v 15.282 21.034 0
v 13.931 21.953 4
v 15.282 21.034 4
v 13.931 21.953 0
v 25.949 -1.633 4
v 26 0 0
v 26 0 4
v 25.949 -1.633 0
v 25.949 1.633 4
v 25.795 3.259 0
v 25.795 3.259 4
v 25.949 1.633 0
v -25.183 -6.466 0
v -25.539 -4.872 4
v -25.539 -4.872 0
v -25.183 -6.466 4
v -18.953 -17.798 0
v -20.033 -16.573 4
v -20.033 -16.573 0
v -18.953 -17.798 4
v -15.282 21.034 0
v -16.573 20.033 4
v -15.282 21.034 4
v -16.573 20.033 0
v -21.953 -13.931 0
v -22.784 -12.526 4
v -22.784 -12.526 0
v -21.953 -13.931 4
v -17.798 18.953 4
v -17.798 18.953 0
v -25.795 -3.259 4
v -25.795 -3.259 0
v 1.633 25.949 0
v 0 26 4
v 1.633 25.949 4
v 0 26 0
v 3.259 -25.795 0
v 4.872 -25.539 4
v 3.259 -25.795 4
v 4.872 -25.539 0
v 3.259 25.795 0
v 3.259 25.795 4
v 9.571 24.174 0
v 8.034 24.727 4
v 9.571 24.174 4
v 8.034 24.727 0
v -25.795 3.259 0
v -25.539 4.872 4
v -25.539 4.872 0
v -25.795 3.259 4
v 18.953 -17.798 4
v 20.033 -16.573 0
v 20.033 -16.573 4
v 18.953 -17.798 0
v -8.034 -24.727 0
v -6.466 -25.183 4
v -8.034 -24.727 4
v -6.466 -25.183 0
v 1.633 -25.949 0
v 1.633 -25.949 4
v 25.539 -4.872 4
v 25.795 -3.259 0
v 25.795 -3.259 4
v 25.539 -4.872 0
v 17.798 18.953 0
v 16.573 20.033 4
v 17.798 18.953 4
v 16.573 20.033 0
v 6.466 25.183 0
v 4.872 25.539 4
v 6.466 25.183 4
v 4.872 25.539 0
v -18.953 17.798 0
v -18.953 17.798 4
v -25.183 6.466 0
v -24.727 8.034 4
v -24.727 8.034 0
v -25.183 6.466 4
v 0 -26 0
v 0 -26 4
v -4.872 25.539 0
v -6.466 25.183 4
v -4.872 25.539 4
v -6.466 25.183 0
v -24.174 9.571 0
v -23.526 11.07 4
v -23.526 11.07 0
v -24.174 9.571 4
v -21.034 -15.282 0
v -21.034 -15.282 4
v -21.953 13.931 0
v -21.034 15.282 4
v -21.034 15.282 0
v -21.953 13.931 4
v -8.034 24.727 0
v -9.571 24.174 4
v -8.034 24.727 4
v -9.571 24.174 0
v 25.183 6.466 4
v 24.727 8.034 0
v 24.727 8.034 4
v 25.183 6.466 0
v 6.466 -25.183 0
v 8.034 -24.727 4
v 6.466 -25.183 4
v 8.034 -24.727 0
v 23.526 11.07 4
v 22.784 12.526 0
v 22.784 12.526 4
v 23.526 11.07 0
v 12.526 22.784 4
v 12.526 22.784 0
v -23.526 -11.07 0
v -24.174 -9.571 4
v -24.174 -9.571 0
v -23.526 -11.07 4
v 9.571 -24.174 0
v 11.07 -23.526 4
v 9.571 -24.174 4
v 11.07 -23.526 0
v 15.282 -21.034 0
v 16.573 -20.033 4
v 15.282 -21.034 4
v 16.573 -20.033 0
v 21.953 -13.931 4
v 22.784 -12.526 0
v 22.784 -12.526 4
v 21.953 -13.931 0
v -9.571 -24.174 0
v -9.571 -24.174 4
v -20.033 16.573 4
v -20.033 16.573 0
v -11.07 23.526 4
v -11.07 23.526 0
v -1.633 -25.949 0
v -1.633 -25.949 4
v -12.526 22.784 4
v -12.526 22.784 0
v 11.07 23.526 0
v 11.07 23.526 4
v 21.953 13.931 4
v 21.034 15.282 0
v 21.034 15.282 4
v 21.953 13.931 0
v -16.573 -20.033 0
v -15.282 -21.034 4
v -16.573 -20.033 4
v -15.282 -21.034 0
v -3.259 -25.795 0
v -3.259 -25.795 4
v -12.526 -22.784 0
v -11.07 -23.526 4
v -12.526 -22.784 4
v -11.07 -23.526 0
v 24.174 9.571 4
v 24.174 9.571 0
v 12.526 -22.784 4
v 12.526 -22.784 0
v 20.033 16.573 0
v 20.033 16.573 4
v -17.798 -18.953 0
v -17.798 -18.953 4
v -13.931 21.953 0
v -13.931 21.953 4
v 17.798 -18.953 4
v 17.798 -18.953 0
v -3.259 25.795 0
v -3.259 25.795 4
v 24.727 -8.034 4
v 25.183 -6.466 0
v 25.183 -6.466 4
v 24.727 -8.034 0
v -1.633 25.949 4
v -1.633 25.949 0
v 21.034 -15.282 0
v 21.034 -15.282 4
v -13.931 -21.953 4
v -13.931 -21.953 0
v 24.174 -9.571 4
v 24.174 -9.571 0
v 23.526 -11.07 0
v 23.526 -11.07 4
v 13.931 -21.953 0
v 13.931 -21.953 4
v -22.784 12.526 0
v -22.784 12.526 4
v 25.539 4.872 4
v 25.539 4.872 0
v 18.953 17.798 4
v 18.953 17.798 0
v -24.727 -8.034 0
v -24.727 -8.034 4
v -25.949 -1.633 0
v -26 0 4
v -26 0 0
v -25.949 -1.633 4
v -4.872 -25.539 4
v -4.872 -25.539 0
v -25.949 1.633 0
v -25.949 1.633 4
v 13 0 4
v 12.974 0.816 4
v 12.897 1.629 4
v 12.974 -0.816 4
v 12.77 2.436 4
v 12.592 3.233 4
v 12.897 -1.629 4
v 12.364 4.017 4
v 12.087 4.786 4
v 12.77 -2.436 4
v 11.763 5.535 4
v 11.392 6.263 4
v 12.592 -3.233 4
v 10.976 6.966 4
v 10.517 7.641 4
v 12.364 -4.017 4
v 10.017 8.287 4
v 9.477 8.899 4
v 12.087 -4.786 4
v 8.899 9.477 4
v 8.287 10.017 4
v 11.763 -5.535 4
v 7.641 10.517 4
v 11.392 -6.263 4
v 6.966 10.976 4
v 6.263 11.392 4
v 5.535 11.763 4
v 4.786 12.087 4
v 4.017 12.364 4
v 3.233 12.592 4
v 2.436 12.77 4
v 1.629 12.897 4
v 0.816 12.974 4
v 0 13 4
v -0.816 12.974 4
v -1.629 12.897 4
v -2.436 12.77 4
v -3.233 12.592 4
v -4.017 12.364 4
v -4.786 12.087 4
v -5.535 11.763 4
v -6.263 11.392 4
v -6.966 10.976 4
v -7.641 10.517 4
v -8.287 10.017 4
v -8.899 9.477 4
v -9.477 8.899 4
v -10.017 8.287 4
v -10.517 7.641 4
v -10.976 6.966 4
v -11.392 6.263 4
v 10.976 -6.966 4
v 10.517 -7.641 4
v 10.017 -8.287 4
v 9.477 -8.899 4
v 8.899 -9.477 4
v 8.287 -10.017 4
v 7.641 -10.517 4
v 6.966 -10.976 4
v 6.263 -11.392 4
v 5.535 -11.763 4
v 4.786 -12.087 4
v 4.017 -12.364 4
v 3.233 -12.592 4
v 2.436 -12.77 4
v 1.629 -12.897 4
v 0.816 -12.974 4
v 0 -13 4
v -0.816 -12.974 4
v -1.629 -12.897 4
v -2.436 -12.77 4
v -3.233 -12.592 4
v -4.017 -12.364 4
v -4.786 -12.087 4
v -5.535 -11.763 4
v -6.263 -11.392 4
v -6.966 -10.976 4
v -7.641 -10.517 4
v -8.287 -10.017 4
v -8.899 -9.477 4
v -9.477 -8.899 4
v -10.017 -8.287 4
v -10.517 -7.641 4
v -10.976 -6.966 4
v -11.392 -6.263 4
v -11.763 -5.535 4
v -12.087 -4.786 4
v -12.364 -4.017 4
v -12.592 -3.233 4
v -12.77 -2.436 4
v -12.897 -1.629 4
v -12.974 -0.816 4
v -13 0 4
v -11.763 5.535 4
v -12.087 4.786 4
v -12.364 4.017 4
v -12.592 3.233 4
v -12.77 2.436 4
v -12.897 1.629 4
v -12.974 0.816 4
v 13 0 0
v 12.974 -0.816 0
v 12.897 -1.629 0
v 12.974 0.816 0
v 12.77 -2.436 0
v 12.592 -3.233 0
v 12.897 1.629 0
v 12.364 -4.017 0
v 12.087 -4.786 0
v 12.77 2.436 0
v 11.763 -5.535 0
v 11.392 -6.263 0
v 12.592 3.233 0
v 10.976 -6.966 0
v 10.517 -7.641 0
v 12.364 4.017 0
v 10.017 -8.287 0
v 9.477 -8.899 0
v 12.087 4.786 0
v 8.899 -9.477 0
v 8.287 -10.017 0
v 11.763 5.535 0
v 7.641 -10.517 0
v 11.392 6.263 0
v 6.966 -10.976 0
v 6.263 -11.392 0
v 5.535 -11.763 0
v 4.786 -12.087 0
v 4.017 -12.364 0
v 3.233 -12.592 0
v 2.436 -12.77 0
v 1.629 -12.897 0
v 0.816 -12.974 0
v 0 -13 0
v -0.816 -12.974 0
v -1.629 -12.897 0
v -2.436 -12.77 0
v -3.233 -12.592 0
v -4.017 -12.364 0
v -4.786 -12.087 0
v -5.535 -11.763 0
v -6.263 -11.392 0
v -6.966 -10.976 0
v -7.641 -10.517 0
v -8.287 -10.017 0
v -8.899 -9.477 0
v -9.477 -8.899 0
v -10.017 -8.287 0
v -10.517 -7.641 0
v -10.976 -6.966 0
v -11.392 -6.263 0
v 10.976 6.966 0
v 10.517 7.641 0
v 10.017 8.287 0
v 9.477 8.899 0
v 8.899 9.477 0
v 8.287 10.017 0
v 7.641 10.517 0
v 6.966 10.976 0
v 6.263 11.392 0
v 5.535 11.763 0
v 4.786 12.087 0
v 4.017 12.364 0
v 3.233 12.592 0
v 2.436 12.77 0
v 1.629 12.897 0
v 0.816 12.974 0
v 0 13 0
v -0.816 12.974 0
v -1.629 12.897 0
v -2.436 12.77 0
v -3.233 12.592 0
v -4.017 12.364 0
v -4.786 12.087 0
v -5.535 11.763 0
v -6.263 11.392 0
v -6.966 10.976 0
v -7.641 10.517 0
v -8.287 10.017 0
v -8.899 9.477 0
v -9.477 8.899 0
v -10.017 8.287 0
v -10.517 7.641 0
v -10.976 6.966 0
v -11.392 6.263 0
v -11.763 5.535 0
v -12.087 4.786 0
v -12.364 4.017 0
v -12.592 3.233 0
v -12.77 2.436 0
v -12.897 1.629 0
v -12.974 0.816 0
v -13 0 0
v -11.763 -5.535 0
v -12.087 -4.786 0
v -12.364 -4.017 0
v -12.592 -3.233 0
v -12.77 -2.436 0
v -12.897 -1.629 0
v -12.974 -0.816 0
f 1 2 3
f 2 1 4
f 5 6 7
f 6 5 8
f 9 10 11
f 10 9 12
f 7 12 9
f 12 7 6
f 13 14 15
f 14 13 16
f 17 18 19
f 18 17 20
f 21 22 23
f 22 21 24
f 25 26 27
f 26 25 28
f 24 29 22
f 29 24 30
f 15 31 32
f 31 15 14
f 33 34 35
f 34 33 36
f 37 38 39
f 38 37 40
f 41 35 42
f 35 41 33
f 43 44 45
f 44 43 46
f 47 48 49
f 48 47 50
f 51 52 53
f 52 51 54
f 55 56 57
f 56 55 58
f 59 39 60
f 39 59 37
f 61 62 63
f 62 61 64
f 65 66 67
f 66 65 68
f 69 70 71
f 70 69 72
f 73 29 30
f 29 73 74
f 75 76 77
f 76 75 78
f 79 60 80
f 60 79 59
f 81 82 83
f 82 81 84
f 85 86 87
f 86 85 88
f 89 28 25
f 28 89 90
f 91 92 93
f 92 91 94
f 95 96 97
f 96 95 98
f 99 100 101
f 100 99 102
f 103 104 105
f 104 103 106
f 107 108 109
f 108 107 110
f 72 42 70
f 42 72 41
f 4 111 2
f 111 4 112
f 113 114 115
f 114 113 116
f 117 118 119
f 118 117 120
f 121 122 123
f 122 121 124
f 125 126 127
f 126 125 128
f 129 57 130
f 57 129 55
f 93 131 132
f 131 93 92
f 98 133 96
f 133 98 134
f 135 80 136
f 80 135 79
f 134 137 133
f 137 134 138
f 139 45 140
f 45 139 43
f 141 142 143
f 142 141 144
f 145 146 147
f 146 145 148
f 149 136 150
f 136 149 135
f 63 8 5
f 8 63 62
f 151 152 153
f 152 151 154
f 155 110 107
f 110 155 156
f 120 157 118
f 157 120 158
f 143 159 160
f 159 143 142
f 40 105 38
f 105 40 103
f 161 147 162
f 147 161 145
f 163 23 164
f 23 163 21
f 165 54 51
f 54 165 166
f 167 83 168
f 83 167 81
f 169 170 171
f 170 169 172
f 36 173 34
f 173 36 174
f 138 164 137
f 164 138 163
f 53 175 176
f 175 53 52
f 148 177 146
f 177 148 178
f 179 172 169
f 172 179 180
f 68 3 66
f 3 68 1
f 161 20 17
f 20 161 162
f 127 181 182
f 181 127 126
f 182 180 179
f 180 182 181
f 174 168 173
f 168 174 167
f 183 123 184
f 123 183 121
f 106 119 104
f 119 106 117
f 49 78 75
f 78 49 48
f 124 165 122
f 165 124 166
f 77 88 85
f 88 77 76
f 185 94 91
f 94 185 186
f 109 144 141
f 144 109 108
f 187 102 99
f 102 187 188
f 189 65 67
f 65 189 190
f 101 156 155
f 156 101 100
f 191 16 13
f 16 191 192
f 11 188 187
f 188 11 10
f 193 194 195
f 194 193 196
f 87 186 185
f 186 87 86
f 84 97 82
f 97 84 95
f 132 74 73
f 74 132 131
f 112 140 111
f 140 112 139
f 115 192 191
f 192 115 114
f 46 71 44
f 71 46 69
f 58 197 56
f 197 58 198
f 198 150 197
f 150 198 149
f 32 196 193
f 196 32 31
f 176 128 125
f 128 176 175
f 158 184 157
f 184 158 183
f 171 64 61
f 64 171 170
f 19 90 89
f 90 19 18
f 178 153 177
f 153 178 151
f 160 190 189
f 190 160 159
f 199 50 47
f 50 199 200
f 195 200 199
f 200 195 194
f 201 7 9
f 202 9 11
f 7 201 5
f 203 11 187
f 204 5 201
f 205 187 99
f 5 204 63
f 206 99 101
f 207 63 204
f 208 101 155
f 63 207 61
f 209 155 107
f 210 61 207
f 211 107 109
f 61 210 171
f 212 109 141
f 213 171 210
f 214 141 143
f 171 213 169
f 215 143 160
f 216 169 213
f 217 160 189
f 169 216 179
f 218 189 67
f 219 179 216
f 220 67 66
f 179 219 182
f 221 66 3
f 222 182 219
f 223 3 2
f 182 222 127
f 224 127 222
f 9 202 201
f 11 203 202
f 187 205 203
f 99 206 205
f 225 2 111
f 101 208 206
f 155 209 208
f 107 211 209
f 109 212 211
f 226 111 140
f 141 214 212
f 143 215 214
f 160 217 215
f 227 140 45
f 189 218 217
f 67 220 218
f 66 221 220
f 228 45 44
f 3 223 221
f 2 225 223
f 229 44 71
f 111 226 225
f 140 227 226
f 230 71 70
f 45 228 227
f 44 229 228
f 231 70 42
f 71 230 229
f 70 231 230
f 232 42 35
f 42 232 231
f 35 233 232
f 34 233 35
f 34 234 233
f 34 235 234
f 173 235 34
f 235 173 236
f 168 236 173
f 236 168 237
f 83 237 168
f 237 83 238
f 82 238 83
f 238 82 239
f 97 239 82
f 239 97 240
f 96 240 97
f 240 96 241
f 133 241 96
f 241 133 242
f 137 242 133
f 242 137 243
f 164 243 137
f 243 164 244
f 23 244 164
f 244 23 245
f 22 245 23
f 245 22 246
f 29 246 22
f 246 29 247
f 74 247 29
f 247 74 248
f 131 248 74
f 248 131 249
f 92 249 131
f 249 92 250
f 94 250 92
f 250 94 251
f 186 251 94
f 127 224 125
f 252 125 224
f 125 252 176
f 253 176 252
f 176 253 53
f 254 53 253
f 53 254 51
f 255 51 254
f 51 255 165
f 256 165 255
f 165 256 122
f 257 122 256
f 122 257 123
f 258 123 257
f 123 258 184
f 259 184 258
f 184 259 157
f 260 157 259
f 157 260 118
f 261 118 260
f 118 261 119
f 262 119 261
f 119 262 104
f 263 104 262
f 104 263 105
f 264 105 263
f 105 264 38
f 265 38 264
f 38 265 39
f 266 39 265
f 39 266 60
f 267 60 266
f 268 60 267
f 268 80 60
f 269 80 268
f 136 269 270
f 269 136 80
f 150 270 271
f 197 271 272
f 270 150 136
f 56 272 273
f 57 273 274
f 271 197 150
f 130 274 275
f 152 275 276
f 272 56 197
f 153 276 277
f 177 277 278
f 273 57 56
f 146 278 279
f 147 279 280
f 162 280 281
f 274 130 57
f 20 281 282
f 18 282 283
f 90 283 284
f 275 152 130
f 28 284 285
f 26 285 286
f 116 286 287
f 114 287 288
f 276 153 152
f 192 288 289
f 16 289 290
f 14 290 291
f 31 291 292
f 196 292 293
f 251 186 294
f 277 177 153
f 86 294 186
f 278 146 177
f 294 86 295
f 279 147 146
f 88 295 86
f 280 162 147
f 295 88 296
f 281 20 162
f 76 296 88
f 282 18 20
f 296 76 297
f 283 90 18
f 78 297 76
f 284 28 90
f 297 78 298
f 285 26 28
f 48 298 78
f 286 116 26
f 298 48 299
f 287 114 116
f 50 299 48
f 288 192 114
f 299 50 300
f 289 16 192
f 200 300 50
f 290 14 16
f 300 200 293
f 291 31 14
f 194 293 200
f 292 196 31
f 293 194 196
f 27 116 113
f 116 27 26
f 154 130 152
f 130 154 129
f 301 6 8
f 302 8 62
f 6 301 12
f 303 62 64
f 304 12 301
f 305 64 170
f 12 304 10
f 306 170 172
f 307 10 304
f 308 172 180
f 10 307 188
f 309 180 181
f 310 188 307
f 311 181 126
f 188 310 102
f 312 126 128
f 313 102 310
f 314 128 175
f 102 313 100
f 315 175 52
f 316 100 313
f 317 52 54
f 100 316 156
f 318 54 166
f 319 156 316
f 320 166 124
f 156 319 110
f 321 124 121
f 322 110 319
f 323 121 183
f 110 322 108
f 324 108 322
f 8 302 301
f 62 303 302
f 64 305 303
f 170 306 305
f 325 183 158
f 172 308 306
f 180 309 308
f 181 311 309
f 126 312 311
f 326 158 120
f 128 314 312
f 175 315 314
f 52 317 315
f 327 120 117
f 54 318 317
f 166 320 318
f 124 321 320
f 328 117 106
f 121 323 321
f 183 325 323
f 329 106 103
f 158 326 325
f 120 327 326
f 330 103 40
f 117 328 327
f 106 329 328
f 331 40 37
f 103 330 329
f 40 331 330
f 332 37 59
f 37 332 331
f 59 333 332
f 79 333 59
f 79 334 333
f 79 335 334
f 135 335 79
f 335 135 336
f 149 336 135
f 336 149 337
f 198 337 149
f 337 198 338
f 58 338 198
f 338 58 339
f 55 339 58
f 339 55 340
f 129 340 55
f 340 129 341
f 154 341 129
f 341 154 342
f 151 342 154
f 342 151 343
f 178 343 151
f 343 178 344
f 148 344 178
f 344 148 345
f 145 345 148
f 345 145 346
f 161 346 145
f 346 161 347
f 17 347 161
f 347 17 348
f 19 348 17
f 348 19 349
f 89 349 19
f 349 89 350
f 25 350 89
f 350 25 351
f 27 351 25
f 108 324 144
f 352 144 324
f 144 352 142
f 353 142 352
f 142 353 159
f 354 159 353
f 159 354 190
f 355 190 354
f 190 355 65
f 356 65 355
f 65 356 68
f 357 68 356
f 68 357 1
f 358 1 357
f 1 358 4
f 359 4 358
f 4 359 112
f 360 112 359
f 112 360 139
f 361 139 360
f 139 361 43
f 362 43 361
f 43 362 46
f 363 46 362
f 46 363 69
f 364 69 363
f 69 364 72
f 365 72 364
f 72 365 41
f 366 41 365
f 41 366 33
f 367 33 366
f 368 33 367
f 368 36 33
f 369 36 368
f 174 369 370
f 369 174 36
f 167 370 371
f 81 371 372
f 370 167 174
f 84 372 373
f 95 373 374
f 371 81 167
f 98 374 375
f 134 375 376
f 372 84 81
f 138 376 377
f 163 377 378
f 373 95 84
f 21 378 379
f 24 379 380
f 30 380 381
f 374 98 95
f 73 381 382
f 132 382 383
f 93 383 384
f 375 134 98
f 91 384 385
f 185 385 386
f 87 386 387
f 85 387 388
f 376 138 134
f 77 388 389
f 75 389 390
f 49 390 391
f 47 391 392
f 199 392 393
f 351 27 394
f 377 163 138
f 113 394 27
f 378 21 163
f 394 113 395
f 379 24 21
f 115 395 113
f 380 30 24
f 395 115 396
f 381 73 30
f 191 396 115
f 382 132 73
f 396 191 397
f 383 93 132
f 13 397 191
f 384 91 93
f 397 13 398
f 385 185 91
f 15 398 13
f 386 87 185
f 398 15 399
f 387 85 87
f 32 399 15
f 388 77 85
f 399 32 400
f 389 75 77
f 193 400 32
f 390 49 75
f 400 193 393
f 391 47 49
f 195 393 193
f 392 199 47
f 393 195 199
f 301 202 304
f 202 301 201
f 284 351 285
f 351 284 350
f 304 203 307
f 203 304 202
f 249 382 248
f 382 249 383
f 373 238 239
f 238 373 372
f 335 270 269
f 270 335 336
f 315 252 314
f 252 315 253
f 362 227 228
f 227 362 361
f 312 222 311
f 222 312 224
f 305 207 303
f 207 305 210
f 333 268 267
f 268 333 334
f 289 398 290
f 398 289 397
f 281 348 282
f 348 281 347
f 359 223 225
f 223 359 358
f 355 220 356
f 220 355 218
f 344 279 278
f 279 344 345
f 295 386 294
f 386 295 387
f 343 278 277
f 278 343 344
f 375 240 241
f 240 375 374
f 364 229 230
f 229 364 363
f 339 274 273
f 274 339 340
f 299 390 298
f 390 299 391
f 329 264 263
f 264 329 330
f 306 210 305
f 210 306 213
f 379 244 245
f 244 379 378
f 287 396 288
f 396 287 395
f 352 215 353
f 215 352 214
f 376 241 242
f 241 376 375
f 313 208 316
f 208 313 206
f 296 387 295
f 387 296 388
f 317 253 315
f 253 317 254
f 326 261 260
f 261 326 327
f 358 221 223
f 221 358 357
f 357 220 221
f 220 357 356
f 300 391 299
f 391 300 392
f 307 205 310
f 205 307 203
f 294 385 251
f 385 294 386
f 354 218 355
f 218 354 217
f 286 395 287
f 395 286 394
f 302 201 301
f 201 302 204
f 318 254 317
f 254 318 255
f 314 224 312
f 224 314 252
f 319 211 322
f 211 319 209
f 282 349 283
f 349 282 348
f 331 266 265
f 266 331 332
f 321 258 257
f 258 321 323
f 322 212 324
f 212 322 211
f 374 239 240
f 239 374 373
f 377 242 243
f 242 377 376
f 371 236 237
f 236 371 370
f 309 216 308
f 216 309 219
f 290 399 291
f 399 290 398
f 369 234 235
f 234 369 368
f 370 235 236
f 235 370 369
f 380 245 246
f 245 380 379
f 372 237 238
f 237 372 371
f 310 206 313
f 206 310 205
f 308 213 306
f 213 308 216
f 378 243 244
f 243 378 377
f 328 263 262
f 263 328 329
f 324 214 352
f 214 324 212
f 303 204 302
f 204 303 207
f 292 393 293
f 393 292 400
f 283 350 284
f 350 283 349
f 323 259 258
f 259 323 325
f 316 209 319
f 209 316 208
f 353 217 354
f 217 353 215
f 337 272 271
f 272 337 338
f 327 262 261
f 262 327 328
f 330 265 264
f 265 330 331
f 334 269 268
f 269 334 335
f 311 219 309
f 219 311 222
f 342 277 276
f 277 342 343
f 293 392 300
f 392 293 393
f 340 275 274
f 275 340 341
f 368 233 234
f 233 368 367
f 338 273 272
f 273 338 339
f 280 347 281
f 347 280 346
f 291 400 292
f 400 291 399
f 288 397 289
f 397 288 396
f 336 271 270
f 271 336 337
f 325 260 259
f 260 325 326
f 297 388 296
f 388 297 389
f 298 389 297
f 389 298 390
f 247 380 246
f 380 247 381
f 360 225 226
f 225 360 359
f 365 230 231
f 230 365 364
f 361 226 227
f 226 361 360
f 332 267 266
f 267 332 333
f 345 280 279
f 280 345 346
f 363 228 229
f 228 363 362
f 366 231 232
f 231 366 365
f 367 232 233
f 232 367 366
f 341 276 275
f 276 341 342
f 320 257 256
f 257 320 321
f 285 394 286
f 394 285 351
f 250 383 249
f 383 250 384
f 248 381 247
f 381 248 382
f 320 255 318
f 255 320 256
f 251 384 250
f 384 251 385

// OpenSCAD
difference(){
	union(){



        translate([0,0,0]){
            rotate([0,0,0]){
                cylinder(h=4, r=26, $fn=100, center=false);
            }
        }



}
	union() {
        translate([0,0,-1]){
            rotate([0,0,0]){
                cylinder(h=50, r=13, $fn=100, center=false);
            }
        }
    

      
	}
}
